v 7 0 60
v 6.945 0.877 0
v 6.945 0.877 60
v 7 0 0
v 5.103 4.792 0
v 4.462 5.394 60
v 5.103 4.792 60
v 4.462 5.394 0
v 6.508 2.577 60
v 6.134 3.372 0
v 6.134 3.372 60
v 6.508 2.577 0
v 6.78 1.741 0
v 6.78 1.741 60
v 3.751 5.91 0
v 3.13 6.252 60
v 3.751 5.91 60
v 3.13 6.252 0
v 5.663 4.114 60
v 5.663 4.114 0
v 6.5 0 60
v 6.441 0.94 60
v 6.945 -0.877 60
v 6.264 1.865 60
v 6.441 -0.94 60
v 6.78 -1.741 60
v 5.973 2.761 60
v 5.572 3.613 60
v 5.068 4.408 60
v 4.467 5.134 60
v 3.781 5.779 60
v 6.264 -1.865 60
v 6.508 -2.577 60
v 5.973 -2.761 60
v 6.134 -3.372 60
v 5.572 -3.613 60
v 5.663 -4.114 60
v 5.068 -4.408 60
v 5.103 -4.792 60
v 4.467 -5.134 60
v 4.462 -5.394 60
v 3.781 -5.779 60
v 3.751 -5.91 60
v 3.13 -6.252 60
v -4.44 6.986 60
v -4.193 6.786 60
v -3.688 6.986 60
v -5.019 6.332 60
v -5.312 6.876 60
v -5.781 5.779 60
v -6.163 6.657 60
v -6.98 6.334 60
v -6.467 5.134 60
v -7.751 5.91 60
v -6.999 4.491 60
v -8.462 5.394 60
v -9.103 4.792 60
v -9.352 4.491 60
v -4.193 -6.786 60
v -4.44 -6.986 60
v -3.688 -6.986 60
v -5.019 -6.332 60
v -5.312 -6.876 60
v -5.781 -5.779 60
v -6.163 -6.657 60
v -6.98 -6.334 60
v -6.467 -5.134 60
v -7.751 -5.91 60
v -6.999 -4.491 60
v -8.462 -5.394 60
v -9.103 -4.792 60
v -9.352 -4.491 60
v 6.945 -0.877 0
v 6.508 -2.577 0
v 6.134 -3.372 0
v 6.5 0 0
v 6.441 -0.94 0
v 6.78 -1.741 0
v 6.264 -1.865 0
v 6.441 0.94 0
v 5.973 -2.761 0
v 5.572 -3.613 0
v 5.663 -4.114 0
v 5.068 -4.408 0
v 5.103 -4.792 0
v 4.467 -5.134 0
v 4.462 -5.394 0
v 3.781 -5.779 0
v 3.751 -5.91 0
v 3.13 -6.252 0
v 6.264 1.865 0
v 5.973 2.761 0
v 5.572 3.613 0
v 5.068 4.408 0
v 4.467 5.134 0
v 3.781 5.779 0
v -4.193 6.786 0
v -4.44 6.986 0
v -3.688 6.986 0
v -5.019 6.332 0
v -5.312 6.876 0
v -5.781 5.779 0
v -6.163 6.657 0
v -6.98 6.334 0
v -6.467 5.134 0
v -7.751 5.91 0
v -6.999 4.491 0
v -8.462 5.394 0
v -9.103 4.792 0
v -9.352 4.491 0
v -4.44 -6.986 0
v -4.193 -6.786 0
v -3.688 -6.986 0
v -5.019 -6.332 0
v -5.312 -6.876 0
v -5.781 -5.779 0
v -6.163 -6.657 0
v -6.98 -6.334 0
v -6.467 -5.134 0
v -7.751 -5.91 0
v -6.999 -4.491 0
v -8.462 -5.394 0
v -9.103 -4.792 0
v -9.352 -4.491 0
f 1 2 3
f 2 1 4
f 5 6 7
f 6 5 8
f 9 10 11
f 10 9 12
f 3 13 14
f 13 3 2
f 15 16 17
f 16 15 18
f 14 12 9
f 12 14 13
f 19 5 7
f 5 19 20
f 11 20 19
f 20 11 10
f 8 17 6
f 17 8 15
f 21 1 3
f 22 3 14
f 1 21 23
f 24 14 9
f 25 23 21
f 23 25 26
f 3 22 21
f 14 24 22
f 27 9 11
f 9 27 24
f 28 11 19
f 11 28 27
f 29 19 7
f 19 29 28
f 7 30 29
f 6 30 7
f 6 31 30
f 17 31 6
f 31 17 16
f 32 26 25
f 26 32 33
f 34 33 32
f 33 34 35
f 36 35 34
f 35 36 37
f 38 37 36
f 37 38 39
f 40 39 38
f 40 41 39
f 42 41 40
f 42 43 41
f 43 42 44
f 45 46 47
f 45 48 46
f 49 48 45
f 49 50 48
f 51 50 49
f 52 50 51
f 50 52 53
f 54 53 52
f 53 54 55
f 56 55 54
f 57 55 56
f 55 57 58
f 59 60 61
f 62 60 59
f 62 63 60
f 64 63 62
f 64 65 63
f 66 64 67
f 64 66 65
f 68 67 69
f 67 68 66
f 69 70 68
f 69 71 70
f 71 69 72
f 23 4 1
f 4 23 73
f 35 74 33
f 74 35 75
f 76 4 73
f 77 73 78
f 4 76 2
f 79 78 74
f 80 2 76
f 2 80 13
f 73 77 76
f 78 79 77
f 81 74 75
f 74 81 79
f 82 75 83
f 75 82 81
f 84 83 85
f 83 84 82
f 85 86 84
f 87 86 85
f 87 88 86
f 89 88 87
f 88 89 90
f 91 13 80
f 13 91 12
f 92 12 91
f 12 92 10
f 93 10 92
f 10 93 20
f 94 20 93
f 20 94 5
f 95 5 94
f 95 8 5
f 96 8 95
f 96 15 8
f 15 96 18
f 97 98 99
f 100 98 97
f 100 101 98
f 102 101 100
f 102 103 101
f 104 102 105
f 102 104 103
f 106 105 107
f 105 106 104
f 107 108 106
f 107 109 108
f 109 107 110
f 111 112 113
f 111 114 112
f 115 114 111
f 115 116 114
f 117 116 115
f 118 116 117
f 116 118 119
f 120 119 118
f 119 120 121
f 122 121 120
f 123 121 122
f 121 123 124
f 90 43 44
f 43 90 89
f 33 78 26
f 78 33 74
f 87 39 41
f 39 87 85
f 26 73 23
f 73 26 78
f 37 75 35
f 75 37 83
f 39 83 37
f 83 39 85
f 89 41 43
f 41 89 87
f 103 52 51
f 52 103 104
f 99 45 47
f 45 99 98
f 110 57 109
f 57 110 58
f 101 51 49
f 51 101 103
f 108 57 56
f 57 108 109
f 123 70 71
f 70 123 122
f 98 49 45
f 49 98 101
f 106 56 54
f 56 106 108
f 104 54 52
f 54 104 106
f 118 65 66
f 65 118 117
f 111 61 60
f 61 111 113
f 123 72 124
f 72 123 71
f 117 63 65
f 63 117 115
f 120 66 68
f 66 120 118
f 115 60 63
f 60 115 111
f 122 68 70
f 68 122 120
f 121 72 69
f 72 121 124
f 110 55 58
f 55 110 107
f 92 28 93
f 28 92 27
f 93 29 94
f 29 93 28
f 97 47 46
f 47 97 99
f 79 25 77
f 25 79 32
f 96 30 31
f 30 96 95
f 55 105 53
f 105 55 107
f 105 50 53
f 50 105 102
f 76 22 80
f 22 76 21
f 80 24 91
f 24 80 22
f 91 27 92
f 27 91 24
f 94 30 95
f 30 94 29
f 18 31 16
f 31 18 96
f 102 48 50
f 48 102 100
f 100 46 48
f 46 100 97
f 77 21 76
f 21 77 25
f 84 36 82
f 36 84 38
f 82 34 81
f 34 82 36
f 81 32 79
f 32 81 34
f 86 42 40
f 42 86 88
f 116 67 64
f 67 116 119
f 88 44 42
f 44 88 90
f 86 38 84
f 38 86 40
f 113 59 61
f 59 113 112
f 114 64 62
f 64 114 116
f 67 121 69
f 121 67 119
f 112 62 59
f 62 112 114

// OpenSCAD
$fn = 50;


difference() {
	union() {
		cylinder(h = 60, r = 7.0000000000);
		translate(v = [-4.0000000000, 0, 0]) {
			cylinder(h = 60, r = 7.0000000000);
		}
	}
	union() {
		cylinder(h = 60, r = 3.2500000000);
		cylinder(h = 60, r = 1.8000000000);
		cylinder(h = 60, r = 1.8000000000);
		cylinder(h = 60, r = 1.8000000000);
		translate(v = [-8.5000000000, 0, 0]) {
			hull() {
				translate(v = [-3.7500000000, 0.0000000000, 0]) {
					cylinder(h = 60, r = 4.5000000000);
				}
				translate(v = [3.7500000000, 0.0000000000, 0]) {
					cylinder(h = 60, r = 4.5000000000);
				}
				translate(v = [-3.7500000000, -0.0000000000, 0]) {
					cylinder(h = 60, r = 4.5000000000);
				}
				translate(v = [3.7500000000, -0.0000000000, 0]) {
					cylinder(h = 60, r = 4.5000000000);
				}
			}
		}
		translate(v = [-1.0000000000, 0, 0.0000000000]) {
			cylinder(h = 60, r = 7.5000000000);
		}
	}
}
